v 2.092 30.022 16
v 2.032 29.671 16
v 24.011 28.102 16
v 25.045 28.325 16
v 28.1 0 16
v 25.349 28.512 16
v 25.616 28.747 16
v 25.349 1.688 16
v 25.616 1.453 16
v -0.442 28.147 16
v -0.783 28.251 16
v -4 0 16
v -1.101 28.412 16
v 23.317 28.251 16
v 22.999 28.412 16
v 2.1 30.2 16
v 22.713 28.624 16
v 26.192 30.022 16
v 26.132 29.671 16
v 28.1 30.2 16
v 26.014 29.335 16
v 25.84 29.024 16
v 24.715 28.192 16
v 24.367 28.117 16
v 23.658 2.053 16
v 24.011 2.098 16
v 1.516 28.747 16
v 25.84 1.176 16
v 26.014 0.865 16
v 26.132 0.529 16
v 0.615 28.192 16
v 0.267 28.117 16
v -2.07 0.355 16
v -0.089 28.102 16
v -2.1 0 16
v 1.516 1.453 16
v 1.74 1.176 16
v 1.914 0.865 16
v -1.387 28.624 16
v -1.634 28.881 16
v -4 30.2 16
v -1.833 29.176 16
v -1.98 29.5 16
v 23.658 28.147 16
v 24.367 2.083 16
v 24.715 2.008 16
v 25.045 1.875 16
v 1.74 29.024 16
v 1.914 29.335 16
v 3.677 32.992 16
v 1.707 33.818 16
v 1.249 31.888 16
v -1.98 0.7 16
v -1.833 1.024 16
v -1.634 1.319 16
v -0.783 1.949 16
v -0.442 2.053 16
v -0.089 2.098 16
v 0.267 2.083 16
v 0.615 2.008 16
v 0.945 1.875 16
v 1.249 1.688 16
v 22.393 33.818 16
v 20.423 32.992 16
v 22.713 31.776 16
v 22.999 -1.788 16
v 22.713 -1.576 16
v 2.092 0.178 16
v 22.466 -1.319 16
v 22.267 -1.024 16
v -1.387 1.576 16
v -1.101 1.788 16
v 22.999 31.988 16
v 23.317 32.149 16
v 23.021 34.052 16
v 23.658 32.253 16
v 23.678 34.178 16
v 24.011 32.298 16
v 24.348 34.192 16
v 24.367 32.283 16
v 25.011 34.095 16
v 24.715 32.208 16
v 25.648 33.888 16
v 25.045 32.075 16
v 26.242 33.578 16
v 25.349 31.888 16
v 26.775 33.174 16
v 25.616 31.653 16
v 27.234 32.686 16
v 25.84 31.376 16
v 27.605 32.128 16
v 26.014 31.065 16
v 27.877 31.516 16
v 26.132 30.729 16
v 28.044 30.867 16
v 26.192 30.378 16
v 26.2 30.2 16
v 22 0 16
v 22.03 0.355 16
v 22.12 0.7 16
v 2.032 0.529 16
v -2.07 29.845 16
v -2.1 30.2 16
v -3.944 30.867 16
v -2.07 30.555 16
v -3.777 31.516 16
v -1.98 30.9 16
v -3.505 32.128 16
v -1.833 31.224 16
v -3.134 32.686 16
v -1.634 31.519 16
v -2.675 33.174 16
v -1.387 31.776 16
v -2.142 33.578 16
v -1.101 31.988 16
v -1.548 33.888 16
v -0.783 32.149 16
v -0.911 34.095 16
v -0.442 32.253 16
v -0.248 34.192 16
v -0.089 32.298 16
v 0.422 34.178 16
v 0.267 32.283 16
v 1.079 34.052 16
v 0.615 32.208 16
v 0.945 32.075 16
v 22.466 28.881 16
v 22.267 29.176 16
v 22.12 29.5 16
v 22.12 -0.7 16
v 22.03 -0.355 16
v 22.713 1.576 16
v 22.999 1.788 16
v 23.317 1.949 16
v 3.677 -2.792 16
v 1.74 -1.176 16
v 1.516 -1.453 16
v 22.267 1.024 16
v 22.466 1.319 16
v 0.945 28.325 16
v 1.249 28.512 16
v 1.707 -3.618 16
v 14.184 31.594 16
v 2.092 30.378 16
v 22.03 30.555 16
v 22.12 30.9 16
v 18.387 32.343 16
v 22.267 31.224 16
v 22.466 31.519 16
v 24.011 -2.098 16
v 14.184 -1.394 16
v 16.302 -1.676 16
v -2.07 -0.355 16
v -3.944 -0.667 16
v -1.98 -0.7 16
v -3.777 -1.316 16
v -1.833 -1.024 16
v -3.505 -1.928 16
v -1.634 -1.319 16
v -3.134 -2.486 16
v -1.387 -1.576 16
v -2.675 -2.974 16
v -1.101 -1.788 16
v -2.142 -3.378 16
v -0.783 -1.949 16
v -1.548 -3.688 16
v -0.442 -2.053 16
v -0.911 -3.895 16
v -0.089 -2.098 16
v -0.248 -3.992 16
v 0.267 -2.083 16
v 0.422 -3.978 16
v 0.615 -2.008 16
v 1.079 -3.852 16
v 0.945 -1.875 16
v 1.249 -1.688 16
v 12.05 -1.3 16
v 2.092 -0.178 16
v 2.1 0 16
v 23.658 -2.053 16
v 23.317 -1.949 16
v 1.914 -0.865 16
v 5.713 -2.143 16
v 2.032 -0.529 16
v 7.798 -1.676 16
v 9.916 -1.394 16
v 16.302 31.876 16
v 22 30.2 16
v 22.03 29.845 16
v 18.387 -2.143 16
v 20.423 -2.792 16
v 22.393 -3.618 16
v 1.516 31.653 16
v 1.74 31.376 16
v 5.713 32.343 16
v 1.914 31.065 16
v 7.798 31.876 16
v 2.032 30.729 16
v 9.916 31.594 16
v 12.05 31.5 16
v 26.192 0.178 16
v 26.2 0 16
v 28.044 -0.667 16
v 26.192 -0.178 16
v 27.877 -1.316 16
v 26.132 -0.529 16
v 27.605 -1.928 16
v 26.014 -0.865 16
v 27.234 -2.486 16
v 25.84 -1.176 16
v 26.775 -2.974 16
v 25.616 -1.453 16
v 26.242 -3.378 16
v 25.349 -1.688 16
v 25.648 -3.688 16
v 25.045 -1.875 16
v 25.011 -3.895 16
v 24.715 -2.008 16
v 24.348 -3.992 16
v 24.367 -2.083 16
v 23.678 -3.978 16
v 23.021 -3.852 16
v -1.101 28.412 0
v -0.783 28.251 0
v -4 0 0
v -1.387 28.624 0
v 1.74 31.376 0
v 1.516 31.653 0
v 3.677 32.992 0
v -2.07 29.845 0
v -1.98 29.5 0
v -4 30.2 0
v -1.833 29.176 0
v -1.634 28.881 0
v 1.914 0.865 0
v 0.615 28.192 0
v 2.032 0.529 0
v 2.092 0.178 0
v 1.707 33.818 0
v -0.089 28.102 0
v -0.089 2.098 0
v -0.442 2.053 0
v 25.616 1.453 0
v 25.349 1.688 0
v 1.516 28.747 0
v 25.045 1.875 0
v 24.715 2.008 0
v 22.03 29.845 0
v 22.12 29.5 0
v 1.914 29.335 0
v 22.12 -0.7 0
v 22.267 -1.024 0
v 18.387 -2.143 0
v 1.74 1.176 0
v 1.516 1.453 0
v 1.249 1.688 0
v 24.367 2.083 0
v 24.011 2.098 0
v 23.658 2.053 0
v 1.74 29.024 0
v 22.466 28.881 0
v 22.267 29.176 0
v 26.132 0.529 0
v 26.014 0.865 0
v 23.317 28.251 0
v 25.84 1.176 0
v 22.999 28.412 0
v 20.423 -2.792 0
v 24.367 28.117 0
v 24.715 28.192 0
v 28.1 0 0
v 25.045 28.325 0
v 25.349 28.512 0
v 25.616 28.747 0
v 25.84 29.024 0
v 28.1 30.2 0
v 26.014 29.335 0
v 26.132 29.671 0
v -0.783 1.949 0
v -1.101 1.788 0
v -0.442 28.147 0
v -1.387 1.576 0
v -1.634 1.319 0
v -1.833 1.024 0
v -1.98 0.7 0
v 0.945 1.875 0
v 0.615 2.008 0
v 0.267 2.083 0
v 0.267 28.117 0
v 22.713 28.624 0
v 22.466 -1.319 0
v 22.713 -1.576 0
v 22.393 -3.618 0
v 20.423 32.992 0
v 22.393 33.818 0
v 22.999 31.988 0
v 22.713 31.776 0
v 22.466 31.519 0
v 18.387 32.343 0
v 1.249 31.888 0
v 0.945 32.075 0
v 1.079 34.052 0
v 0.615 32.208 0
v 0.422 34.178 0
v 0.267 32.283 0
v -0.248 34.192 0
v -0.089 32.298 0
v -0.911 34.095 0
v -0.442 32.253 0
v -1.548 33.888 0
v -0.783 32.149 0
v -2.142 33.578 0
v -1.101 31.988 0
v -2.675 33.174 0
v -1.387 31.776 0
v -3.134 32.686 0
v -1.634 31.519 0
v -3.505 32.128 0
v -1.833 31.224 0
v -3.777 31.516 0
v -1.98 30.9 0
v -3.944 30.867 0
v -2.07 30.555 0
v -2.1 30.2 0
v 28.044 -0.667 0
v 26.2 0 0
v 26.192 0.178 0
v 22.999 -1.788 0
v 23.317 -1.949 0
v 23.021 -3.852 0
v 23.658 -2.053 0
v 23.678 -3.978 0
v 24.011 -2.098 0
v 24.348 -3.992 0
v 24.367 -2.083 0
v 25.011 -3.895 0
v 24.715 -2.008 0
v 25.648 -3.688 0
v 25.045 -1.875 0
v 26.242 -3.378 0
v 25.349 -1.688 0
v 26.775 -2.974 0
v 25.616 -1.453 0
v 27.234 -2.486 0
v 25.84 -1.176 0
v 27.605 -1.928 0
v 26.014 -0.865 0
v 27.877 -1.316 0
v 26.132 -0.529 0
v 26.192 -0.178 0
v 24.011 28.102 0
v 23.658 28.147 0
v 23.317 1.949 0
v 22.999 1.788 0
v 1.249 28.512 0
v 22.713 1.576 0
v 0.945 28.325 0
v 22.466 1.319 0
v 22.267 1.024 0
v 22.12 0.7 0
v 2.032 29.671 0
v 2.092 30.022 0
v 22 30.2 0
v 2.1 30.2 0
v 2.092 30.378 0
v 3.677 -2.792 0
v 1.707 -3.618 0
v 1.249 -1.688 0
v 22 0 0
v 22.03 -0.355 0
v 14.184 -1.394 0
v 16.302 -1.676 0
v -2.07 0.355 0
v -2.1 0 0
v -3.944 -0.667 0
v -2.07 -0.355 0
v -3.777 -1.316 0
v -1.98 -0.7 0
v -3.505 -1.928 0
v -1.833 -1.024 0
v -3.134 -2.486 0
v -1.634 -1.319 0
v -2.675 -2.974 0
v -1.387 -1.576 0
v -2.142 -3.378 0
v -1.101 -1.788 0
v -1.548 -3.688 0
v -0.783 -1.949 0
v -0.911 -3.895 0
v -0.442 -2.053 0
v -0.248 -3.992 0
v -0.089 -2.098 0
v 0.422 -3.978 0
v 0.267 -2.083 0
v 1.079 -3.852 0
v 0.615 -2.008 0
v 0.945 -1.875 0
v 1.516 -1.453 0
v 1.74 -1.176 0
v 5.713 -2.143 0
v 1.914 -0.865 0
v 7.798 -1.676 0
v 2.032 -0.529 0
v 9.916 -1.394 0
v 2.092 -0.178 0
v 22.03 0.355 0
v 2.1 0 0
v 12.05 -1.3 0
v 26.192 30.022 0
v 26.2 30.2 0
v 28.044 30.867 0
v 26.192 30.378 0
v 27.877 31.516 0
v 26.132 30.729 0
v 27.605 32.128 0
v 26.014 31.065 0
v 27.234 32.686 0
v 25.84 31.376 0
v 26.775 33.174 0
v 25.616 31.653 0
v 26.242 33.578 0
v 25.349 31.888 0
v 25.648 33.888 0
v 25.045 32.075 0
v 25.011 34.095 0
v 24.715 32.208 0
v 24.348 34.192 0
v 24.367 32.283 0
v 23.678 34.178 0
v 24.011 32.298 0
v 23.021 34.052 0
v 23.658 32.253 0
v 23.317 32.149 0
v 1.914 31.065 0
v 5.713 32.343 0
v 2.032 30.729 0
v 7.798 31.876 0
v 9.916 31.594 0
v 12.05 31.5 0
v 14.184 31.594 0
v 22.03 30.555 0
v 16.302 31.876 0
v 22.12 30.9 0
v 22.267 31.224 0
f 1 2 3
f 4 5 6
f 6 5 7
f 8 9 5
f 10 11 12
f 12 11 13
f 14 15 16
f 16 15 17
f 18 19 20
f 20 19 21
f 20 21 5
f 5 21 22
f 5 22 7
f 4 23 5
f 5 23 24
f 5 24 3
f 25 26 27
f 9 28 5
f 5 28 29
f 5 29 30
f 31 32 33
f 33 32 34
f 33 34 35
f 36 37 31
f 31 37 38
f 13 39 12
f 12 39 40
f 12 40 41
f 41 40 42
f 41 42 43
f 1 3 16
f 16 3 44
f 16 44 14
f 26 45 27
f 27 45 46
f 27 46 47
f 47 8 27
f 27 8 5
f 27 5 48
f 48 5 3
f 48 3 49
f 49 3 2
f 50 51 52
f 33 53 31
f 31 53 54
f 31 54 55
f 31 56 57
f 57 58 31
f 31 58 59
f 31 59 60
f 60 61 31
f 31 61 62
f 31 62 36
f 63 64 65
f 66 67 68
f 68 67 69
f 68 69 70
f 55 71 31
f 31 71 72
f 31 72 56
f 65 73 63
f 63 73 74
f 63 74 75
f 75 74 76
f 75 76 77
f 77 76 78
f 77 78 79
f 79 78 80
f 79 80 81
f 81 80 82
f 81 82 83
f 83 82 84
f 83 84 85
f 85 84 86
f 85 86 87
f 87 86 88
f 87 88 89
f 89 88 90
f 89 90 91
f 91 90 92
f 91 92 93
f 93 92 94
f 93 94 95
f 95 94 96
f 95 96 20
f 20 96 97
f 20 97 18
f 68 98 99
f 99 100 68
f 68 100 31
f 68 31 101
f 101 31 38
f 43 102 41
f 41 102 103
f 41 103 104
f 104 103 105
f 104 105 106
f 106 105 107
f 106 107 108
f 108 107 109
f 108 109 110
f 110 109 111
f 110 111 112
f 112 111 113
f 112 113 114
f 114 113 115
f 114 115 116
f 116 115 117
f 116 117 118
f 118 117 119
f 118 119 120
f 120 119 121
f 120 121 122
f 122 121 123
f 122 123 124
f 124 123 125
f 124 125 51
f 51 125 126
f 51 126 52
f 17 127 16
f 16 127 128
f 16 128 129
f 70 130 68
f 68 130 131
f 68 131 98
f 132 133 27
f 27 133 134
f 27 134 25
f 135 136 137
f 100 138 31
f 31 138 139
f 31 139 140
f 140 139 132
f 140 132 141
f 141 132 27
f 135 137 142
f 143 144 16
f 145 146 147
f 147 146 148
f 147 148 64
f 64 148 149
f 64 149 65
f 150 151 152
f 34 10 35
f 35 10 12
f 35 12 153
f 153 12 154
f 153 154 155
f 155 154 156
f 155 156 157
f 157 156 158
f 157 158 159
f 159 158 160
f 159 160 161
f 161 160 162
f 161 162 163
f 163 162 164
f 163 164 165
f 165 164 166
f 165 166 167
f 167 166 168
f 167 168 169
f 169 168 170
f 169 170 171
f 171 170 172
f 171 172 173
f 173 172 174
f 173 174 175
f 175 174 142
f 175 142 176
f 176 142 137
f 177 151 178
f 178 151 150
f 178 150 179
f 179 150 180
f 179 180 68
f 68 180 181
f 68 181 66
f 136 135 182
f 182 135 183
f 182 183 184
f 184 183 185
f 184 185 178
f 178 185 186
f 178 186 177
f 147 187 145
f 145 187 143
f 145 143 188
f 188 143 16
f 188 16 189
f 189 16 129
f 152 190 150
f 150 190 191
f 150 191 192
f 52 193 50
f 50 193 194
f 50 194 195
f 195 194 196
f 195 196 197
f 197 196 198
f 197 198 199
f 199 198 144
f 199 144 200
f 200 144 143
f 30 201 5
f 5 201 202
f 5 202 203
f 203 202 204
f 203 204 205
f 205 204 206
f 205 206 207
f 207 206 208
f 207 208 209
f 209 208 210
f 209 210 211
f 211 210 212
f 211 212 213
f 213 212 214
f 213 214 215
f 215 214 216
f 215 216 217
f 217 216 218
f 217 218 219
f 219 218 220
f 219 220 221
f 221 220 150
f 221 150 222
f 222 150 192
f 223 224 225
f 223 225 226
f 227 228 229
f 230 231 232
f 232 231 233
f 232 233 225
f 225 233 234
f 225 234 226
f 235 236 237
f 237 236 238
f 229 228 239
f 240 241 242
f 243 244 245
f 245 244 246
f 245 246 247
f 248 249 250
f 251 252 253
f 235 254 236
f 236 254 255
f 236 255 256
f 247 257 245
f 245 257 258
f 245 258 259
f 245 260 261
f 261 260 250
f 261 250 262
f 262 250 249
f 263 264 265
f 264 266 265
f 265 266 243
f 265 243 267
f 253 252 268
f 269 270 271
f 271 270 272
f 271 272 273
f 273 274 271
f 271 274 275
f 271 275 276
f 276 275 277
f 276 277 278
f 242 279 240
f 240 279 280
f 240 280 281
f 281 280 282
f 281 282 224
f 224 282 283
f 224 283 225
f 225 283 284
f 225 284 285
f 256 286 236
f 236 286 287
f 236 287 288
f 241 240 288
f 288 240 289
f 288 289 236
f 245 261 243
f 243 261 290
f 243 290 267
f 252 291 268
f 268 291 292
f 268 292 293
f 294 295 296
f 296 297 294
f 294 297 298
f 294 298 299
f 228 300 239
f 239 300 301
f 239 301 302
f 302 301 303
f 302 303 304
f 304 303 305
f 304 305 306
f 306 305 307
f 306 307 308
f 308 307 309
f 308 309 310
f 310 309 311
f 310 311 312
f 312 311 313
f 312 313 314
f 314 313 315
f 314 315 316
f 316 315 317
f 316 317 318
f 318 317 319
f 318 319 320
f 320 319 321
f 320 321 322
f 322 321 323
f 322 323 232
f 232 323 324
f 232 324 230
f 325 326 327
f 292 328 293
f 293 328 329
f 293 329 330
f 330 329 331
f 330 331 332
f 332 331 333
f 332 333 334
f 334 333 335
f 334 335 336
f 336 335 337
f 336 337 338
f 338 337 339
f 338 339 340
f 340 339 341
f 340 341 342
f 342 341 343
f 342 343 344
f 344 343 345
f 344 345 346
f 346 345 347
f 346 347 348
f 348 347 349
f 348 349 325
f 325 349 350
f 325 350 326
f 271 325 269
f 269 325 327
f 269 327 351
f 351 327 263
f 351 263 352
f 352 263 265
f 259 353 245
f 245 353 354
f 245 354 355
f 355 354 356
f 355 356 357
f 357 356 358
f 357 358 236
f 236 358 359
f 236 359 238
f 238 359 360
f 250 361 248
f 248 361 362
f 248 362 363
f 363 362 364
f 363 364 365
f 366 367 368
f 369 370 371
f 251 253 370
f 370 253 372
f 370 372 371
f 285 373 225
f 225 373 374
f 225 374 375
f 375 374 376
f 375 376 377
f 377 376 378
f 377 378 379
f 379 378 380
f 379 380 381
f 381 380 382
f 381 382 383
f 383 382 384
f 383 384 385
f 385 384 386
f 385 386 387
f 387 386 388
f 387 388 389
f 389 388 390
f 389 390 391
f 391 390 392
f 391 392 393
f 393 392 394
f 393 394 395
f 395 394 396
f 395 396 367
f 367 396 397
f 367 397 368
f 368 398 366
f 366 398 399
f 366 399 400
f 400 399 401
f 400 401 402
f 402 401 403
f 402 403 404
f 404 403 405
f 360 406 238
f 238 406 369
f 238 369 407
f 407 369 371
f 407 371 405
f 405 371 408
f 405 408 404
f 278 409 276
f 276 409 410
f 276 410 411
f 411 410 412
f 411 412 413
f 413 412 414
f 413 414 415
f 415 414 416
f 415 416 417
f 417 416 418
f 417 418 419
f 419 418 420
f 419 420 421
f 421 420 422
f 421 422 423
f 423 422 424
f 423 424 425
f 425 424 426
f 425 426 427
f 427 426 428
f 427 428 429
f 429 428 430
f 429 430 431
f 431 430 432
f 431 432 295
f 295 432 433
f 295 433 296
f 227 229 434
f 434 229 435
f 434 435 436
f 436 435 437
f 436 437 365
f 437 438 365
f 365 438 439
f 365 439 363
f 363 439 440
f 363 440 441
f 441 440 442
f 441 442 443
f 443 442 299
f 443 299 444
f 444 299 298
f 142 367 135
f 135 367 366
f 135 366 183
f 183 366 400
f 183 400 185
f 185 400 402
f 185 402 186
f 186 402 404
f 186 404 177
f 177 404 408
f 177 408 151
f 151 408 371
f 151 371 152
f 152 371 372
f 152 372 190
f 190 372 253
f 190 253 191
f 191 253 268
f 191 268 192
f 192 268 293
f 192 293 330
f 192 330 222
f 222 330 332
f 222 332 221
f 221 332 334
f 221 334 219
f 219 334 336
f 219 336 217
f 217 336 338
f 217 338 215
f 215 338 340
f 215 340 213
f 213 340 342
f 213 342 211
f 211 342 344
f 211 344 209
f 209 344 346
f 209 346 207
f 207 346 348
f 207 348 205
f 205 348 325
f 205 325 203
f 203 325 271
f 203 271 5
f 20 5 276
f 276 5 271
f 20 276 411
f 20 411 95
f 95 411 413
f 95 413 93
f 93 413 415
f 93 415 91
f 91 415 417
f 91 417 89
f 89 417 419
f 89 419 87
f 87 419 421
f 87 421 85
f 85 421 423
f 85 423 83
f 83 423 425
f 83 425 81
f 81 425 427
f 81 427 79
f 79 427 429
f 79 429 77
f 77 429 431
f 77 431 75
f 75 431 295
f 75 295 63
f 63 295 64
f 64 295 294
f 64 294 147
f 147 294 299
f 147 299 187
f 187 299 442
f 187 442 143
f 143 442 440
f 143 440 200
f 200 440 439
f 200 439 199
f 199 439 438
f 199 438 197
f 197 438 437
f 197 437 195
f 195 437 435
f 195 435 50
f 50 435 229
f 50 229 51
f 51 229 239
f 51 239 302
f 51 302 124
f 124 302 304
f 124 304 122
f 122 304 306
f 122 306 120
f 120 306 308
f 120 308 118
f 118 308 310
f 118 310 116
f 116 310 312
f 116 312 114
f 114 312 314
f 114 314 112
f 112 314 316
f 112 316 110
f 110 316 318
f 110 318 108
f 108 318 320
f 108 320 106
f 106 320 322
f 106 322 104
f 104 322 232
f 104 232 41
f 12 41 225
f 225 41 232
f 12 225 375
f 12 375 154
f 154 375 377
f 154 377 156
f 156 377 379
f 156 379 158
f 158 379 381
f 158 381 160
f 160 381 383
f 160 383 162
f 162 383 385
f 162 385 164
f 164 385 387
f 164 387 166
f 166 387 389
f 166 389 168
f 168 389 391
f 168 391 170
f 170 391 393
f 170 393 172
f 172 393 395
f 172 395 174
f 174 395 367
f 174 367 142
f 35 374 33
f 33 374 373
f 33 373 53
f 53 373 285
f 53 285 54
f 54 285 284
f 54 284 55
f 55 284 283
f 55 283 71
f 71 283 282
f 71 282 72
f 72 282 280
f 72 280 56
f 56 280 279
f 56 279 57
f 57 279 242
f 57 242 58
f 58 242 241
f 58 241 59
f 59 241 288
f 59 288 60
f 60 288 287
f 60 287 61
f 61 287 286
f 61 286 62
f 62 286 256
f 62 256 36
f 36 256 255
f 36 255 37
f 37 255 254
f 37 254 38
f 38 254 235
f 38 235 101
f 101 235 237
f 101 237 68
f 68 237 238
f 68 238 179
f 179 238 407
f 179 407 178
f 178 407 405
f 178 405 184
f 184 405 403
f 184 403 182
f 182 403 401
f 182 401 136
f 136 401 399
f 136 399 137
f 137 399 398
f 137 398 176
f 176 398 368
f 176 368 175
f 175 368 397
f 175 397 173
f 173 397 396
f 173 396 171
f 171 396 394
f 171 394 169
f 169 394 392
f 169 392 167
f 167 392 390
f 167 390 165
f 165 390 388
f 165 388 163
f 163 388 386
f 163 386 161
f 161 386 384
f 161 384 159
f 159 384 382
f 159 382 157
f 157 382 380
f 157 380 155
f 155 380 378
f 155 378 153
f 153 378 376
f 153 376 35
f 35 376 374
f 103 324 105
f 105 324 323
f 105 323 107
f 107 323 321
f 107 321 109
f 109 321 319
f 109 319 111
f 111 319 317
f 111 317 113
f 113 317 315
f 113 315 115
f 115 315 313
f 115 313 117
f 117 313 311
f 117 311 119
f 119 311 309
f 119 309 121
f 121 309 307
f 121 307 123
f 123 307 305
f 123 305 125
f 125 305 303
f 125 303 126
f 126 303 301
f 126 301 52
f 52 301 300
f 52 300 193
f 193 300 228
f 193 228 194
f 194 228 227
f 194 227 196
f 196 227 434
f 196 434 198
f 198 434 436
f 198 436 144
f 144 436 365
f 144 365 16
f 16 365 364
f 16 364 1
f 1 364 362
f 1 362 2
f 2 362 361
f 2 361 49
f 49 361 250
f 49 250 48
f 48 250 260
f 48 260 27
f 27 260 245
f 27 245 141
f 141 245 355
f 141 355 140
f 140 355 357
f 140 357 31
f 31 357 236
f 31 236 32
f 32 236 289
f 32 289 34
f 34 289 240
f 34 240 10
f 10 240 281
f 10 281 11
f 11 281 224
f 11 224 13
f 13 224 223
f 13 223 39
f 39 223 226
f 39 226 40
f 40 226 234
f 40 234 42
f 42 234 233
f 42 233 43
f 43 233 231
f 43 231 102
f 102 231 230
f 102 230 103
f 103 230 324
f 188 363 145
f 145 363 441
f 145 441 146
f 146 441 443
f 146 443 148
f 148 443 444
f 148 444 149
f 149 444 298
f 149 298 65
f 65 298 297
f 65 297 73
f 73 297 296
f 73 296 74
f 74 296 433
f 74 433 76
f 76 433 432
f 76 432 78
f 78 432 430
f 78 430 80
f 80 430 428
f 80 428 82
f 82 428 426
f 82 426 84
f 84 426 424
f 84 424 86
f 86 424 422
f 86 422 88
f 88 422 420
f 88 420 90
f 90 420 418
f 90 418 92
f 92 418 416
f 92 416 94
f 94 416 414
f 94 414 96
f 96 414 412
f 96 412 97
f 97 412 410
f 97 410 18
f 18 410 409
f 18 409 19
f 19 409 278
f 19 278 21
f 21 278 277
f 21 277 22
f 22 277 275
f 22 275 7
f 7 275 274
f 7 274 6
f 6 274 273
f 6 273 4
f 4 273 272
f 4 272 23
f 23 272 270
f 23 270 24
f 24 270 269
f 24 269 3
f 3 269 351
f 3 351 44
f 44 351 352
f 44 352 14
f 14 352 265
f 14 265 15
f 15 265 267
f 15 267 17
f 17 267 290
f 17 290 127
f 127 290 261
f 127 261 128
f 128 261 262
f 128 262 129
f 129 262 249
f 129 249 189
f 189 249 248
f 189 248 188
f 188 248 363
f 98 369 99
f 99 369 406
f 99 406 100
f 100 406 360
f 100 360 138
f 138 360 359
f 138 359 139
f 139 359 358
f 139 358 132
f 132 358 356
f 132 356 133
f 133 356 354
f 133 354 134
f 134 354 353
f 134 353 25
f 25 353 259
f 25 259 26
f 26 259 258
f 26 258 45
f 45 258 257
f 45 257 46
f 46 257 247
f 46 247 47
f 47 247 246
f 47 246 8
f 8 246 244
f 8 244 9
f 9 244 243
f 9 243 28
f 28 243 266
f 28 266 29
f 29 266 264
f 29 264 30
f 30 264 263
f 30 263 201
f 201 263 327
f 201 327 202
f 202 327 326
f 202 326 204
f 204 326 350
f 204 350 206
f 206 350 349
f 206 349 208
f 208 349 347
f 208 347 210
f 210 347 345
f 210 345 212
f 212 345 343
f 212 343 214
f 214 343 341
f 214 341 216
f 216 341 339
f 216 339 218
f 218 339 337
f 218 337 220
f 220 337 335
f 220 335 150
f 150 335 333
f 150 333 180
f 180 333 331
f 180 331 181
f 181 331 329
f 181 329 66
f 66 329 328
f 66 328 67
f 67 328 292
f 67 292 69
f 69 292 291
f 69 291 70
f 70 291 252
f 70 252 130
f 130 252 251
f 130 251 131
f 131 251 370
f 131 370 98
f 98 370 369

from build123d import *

# Parameters (mm, degrees)
SKETCH1_R           = 2.1
BOSS_EXTRUDE1_DEPTH = 16


with BuildPart() as part:
    # Sketch1 → Boss-Extrude1 (new body)
    with BuildSketch(Plane.XY):
        with BuildLine():
            Line((-4, 0), (-4, 30.2))
            ThreePointArc((-4, 30.2), (-2.141570433, 33.578413249), (1.706838041, 33.817554962))
            ThreePointArc((1.706838041, 33.817554962), (12.05, 31.5), (22.393161959, 33.817554962))
            ThreePointArc((22.393161959, 33.817554962), (26.241570433, 33.578413249), (28.1, 30.2))
            Line((28.1, 30.2), (28.1, 0))
            ThreePointArc((28.1, 0), (26.241570433, -3.378413249), (22.393161959, -3.617554962))
            ThreePointArc((22.393161959, -3.617554962), (12.05, -1.3), (1.706838041, -3.617554962))
            ThreePointArc((1.706838041, -3.617554962), (-2.141570433, -3.378413249), (-4, 0))
        make_face()
        Circle(SKETCH1_R, mode=Mode.SUBTRACT)
        with Locations((0, 30.2)):
            Circle(SKETCH1_R, mode=Mode.SUBTRACT)
        with Locations((24.1, 30.2)):
            Circle(SKETCH1_R, mode=Mode.SUBTRACT)
        with Locations((24.1, 0)):
            Circle(SKETCH1_R, mode=Mode.SUBTRACT)
    extrude(amount=BOSS_EXTRUDE1_DEPTH)


solid = part.part
